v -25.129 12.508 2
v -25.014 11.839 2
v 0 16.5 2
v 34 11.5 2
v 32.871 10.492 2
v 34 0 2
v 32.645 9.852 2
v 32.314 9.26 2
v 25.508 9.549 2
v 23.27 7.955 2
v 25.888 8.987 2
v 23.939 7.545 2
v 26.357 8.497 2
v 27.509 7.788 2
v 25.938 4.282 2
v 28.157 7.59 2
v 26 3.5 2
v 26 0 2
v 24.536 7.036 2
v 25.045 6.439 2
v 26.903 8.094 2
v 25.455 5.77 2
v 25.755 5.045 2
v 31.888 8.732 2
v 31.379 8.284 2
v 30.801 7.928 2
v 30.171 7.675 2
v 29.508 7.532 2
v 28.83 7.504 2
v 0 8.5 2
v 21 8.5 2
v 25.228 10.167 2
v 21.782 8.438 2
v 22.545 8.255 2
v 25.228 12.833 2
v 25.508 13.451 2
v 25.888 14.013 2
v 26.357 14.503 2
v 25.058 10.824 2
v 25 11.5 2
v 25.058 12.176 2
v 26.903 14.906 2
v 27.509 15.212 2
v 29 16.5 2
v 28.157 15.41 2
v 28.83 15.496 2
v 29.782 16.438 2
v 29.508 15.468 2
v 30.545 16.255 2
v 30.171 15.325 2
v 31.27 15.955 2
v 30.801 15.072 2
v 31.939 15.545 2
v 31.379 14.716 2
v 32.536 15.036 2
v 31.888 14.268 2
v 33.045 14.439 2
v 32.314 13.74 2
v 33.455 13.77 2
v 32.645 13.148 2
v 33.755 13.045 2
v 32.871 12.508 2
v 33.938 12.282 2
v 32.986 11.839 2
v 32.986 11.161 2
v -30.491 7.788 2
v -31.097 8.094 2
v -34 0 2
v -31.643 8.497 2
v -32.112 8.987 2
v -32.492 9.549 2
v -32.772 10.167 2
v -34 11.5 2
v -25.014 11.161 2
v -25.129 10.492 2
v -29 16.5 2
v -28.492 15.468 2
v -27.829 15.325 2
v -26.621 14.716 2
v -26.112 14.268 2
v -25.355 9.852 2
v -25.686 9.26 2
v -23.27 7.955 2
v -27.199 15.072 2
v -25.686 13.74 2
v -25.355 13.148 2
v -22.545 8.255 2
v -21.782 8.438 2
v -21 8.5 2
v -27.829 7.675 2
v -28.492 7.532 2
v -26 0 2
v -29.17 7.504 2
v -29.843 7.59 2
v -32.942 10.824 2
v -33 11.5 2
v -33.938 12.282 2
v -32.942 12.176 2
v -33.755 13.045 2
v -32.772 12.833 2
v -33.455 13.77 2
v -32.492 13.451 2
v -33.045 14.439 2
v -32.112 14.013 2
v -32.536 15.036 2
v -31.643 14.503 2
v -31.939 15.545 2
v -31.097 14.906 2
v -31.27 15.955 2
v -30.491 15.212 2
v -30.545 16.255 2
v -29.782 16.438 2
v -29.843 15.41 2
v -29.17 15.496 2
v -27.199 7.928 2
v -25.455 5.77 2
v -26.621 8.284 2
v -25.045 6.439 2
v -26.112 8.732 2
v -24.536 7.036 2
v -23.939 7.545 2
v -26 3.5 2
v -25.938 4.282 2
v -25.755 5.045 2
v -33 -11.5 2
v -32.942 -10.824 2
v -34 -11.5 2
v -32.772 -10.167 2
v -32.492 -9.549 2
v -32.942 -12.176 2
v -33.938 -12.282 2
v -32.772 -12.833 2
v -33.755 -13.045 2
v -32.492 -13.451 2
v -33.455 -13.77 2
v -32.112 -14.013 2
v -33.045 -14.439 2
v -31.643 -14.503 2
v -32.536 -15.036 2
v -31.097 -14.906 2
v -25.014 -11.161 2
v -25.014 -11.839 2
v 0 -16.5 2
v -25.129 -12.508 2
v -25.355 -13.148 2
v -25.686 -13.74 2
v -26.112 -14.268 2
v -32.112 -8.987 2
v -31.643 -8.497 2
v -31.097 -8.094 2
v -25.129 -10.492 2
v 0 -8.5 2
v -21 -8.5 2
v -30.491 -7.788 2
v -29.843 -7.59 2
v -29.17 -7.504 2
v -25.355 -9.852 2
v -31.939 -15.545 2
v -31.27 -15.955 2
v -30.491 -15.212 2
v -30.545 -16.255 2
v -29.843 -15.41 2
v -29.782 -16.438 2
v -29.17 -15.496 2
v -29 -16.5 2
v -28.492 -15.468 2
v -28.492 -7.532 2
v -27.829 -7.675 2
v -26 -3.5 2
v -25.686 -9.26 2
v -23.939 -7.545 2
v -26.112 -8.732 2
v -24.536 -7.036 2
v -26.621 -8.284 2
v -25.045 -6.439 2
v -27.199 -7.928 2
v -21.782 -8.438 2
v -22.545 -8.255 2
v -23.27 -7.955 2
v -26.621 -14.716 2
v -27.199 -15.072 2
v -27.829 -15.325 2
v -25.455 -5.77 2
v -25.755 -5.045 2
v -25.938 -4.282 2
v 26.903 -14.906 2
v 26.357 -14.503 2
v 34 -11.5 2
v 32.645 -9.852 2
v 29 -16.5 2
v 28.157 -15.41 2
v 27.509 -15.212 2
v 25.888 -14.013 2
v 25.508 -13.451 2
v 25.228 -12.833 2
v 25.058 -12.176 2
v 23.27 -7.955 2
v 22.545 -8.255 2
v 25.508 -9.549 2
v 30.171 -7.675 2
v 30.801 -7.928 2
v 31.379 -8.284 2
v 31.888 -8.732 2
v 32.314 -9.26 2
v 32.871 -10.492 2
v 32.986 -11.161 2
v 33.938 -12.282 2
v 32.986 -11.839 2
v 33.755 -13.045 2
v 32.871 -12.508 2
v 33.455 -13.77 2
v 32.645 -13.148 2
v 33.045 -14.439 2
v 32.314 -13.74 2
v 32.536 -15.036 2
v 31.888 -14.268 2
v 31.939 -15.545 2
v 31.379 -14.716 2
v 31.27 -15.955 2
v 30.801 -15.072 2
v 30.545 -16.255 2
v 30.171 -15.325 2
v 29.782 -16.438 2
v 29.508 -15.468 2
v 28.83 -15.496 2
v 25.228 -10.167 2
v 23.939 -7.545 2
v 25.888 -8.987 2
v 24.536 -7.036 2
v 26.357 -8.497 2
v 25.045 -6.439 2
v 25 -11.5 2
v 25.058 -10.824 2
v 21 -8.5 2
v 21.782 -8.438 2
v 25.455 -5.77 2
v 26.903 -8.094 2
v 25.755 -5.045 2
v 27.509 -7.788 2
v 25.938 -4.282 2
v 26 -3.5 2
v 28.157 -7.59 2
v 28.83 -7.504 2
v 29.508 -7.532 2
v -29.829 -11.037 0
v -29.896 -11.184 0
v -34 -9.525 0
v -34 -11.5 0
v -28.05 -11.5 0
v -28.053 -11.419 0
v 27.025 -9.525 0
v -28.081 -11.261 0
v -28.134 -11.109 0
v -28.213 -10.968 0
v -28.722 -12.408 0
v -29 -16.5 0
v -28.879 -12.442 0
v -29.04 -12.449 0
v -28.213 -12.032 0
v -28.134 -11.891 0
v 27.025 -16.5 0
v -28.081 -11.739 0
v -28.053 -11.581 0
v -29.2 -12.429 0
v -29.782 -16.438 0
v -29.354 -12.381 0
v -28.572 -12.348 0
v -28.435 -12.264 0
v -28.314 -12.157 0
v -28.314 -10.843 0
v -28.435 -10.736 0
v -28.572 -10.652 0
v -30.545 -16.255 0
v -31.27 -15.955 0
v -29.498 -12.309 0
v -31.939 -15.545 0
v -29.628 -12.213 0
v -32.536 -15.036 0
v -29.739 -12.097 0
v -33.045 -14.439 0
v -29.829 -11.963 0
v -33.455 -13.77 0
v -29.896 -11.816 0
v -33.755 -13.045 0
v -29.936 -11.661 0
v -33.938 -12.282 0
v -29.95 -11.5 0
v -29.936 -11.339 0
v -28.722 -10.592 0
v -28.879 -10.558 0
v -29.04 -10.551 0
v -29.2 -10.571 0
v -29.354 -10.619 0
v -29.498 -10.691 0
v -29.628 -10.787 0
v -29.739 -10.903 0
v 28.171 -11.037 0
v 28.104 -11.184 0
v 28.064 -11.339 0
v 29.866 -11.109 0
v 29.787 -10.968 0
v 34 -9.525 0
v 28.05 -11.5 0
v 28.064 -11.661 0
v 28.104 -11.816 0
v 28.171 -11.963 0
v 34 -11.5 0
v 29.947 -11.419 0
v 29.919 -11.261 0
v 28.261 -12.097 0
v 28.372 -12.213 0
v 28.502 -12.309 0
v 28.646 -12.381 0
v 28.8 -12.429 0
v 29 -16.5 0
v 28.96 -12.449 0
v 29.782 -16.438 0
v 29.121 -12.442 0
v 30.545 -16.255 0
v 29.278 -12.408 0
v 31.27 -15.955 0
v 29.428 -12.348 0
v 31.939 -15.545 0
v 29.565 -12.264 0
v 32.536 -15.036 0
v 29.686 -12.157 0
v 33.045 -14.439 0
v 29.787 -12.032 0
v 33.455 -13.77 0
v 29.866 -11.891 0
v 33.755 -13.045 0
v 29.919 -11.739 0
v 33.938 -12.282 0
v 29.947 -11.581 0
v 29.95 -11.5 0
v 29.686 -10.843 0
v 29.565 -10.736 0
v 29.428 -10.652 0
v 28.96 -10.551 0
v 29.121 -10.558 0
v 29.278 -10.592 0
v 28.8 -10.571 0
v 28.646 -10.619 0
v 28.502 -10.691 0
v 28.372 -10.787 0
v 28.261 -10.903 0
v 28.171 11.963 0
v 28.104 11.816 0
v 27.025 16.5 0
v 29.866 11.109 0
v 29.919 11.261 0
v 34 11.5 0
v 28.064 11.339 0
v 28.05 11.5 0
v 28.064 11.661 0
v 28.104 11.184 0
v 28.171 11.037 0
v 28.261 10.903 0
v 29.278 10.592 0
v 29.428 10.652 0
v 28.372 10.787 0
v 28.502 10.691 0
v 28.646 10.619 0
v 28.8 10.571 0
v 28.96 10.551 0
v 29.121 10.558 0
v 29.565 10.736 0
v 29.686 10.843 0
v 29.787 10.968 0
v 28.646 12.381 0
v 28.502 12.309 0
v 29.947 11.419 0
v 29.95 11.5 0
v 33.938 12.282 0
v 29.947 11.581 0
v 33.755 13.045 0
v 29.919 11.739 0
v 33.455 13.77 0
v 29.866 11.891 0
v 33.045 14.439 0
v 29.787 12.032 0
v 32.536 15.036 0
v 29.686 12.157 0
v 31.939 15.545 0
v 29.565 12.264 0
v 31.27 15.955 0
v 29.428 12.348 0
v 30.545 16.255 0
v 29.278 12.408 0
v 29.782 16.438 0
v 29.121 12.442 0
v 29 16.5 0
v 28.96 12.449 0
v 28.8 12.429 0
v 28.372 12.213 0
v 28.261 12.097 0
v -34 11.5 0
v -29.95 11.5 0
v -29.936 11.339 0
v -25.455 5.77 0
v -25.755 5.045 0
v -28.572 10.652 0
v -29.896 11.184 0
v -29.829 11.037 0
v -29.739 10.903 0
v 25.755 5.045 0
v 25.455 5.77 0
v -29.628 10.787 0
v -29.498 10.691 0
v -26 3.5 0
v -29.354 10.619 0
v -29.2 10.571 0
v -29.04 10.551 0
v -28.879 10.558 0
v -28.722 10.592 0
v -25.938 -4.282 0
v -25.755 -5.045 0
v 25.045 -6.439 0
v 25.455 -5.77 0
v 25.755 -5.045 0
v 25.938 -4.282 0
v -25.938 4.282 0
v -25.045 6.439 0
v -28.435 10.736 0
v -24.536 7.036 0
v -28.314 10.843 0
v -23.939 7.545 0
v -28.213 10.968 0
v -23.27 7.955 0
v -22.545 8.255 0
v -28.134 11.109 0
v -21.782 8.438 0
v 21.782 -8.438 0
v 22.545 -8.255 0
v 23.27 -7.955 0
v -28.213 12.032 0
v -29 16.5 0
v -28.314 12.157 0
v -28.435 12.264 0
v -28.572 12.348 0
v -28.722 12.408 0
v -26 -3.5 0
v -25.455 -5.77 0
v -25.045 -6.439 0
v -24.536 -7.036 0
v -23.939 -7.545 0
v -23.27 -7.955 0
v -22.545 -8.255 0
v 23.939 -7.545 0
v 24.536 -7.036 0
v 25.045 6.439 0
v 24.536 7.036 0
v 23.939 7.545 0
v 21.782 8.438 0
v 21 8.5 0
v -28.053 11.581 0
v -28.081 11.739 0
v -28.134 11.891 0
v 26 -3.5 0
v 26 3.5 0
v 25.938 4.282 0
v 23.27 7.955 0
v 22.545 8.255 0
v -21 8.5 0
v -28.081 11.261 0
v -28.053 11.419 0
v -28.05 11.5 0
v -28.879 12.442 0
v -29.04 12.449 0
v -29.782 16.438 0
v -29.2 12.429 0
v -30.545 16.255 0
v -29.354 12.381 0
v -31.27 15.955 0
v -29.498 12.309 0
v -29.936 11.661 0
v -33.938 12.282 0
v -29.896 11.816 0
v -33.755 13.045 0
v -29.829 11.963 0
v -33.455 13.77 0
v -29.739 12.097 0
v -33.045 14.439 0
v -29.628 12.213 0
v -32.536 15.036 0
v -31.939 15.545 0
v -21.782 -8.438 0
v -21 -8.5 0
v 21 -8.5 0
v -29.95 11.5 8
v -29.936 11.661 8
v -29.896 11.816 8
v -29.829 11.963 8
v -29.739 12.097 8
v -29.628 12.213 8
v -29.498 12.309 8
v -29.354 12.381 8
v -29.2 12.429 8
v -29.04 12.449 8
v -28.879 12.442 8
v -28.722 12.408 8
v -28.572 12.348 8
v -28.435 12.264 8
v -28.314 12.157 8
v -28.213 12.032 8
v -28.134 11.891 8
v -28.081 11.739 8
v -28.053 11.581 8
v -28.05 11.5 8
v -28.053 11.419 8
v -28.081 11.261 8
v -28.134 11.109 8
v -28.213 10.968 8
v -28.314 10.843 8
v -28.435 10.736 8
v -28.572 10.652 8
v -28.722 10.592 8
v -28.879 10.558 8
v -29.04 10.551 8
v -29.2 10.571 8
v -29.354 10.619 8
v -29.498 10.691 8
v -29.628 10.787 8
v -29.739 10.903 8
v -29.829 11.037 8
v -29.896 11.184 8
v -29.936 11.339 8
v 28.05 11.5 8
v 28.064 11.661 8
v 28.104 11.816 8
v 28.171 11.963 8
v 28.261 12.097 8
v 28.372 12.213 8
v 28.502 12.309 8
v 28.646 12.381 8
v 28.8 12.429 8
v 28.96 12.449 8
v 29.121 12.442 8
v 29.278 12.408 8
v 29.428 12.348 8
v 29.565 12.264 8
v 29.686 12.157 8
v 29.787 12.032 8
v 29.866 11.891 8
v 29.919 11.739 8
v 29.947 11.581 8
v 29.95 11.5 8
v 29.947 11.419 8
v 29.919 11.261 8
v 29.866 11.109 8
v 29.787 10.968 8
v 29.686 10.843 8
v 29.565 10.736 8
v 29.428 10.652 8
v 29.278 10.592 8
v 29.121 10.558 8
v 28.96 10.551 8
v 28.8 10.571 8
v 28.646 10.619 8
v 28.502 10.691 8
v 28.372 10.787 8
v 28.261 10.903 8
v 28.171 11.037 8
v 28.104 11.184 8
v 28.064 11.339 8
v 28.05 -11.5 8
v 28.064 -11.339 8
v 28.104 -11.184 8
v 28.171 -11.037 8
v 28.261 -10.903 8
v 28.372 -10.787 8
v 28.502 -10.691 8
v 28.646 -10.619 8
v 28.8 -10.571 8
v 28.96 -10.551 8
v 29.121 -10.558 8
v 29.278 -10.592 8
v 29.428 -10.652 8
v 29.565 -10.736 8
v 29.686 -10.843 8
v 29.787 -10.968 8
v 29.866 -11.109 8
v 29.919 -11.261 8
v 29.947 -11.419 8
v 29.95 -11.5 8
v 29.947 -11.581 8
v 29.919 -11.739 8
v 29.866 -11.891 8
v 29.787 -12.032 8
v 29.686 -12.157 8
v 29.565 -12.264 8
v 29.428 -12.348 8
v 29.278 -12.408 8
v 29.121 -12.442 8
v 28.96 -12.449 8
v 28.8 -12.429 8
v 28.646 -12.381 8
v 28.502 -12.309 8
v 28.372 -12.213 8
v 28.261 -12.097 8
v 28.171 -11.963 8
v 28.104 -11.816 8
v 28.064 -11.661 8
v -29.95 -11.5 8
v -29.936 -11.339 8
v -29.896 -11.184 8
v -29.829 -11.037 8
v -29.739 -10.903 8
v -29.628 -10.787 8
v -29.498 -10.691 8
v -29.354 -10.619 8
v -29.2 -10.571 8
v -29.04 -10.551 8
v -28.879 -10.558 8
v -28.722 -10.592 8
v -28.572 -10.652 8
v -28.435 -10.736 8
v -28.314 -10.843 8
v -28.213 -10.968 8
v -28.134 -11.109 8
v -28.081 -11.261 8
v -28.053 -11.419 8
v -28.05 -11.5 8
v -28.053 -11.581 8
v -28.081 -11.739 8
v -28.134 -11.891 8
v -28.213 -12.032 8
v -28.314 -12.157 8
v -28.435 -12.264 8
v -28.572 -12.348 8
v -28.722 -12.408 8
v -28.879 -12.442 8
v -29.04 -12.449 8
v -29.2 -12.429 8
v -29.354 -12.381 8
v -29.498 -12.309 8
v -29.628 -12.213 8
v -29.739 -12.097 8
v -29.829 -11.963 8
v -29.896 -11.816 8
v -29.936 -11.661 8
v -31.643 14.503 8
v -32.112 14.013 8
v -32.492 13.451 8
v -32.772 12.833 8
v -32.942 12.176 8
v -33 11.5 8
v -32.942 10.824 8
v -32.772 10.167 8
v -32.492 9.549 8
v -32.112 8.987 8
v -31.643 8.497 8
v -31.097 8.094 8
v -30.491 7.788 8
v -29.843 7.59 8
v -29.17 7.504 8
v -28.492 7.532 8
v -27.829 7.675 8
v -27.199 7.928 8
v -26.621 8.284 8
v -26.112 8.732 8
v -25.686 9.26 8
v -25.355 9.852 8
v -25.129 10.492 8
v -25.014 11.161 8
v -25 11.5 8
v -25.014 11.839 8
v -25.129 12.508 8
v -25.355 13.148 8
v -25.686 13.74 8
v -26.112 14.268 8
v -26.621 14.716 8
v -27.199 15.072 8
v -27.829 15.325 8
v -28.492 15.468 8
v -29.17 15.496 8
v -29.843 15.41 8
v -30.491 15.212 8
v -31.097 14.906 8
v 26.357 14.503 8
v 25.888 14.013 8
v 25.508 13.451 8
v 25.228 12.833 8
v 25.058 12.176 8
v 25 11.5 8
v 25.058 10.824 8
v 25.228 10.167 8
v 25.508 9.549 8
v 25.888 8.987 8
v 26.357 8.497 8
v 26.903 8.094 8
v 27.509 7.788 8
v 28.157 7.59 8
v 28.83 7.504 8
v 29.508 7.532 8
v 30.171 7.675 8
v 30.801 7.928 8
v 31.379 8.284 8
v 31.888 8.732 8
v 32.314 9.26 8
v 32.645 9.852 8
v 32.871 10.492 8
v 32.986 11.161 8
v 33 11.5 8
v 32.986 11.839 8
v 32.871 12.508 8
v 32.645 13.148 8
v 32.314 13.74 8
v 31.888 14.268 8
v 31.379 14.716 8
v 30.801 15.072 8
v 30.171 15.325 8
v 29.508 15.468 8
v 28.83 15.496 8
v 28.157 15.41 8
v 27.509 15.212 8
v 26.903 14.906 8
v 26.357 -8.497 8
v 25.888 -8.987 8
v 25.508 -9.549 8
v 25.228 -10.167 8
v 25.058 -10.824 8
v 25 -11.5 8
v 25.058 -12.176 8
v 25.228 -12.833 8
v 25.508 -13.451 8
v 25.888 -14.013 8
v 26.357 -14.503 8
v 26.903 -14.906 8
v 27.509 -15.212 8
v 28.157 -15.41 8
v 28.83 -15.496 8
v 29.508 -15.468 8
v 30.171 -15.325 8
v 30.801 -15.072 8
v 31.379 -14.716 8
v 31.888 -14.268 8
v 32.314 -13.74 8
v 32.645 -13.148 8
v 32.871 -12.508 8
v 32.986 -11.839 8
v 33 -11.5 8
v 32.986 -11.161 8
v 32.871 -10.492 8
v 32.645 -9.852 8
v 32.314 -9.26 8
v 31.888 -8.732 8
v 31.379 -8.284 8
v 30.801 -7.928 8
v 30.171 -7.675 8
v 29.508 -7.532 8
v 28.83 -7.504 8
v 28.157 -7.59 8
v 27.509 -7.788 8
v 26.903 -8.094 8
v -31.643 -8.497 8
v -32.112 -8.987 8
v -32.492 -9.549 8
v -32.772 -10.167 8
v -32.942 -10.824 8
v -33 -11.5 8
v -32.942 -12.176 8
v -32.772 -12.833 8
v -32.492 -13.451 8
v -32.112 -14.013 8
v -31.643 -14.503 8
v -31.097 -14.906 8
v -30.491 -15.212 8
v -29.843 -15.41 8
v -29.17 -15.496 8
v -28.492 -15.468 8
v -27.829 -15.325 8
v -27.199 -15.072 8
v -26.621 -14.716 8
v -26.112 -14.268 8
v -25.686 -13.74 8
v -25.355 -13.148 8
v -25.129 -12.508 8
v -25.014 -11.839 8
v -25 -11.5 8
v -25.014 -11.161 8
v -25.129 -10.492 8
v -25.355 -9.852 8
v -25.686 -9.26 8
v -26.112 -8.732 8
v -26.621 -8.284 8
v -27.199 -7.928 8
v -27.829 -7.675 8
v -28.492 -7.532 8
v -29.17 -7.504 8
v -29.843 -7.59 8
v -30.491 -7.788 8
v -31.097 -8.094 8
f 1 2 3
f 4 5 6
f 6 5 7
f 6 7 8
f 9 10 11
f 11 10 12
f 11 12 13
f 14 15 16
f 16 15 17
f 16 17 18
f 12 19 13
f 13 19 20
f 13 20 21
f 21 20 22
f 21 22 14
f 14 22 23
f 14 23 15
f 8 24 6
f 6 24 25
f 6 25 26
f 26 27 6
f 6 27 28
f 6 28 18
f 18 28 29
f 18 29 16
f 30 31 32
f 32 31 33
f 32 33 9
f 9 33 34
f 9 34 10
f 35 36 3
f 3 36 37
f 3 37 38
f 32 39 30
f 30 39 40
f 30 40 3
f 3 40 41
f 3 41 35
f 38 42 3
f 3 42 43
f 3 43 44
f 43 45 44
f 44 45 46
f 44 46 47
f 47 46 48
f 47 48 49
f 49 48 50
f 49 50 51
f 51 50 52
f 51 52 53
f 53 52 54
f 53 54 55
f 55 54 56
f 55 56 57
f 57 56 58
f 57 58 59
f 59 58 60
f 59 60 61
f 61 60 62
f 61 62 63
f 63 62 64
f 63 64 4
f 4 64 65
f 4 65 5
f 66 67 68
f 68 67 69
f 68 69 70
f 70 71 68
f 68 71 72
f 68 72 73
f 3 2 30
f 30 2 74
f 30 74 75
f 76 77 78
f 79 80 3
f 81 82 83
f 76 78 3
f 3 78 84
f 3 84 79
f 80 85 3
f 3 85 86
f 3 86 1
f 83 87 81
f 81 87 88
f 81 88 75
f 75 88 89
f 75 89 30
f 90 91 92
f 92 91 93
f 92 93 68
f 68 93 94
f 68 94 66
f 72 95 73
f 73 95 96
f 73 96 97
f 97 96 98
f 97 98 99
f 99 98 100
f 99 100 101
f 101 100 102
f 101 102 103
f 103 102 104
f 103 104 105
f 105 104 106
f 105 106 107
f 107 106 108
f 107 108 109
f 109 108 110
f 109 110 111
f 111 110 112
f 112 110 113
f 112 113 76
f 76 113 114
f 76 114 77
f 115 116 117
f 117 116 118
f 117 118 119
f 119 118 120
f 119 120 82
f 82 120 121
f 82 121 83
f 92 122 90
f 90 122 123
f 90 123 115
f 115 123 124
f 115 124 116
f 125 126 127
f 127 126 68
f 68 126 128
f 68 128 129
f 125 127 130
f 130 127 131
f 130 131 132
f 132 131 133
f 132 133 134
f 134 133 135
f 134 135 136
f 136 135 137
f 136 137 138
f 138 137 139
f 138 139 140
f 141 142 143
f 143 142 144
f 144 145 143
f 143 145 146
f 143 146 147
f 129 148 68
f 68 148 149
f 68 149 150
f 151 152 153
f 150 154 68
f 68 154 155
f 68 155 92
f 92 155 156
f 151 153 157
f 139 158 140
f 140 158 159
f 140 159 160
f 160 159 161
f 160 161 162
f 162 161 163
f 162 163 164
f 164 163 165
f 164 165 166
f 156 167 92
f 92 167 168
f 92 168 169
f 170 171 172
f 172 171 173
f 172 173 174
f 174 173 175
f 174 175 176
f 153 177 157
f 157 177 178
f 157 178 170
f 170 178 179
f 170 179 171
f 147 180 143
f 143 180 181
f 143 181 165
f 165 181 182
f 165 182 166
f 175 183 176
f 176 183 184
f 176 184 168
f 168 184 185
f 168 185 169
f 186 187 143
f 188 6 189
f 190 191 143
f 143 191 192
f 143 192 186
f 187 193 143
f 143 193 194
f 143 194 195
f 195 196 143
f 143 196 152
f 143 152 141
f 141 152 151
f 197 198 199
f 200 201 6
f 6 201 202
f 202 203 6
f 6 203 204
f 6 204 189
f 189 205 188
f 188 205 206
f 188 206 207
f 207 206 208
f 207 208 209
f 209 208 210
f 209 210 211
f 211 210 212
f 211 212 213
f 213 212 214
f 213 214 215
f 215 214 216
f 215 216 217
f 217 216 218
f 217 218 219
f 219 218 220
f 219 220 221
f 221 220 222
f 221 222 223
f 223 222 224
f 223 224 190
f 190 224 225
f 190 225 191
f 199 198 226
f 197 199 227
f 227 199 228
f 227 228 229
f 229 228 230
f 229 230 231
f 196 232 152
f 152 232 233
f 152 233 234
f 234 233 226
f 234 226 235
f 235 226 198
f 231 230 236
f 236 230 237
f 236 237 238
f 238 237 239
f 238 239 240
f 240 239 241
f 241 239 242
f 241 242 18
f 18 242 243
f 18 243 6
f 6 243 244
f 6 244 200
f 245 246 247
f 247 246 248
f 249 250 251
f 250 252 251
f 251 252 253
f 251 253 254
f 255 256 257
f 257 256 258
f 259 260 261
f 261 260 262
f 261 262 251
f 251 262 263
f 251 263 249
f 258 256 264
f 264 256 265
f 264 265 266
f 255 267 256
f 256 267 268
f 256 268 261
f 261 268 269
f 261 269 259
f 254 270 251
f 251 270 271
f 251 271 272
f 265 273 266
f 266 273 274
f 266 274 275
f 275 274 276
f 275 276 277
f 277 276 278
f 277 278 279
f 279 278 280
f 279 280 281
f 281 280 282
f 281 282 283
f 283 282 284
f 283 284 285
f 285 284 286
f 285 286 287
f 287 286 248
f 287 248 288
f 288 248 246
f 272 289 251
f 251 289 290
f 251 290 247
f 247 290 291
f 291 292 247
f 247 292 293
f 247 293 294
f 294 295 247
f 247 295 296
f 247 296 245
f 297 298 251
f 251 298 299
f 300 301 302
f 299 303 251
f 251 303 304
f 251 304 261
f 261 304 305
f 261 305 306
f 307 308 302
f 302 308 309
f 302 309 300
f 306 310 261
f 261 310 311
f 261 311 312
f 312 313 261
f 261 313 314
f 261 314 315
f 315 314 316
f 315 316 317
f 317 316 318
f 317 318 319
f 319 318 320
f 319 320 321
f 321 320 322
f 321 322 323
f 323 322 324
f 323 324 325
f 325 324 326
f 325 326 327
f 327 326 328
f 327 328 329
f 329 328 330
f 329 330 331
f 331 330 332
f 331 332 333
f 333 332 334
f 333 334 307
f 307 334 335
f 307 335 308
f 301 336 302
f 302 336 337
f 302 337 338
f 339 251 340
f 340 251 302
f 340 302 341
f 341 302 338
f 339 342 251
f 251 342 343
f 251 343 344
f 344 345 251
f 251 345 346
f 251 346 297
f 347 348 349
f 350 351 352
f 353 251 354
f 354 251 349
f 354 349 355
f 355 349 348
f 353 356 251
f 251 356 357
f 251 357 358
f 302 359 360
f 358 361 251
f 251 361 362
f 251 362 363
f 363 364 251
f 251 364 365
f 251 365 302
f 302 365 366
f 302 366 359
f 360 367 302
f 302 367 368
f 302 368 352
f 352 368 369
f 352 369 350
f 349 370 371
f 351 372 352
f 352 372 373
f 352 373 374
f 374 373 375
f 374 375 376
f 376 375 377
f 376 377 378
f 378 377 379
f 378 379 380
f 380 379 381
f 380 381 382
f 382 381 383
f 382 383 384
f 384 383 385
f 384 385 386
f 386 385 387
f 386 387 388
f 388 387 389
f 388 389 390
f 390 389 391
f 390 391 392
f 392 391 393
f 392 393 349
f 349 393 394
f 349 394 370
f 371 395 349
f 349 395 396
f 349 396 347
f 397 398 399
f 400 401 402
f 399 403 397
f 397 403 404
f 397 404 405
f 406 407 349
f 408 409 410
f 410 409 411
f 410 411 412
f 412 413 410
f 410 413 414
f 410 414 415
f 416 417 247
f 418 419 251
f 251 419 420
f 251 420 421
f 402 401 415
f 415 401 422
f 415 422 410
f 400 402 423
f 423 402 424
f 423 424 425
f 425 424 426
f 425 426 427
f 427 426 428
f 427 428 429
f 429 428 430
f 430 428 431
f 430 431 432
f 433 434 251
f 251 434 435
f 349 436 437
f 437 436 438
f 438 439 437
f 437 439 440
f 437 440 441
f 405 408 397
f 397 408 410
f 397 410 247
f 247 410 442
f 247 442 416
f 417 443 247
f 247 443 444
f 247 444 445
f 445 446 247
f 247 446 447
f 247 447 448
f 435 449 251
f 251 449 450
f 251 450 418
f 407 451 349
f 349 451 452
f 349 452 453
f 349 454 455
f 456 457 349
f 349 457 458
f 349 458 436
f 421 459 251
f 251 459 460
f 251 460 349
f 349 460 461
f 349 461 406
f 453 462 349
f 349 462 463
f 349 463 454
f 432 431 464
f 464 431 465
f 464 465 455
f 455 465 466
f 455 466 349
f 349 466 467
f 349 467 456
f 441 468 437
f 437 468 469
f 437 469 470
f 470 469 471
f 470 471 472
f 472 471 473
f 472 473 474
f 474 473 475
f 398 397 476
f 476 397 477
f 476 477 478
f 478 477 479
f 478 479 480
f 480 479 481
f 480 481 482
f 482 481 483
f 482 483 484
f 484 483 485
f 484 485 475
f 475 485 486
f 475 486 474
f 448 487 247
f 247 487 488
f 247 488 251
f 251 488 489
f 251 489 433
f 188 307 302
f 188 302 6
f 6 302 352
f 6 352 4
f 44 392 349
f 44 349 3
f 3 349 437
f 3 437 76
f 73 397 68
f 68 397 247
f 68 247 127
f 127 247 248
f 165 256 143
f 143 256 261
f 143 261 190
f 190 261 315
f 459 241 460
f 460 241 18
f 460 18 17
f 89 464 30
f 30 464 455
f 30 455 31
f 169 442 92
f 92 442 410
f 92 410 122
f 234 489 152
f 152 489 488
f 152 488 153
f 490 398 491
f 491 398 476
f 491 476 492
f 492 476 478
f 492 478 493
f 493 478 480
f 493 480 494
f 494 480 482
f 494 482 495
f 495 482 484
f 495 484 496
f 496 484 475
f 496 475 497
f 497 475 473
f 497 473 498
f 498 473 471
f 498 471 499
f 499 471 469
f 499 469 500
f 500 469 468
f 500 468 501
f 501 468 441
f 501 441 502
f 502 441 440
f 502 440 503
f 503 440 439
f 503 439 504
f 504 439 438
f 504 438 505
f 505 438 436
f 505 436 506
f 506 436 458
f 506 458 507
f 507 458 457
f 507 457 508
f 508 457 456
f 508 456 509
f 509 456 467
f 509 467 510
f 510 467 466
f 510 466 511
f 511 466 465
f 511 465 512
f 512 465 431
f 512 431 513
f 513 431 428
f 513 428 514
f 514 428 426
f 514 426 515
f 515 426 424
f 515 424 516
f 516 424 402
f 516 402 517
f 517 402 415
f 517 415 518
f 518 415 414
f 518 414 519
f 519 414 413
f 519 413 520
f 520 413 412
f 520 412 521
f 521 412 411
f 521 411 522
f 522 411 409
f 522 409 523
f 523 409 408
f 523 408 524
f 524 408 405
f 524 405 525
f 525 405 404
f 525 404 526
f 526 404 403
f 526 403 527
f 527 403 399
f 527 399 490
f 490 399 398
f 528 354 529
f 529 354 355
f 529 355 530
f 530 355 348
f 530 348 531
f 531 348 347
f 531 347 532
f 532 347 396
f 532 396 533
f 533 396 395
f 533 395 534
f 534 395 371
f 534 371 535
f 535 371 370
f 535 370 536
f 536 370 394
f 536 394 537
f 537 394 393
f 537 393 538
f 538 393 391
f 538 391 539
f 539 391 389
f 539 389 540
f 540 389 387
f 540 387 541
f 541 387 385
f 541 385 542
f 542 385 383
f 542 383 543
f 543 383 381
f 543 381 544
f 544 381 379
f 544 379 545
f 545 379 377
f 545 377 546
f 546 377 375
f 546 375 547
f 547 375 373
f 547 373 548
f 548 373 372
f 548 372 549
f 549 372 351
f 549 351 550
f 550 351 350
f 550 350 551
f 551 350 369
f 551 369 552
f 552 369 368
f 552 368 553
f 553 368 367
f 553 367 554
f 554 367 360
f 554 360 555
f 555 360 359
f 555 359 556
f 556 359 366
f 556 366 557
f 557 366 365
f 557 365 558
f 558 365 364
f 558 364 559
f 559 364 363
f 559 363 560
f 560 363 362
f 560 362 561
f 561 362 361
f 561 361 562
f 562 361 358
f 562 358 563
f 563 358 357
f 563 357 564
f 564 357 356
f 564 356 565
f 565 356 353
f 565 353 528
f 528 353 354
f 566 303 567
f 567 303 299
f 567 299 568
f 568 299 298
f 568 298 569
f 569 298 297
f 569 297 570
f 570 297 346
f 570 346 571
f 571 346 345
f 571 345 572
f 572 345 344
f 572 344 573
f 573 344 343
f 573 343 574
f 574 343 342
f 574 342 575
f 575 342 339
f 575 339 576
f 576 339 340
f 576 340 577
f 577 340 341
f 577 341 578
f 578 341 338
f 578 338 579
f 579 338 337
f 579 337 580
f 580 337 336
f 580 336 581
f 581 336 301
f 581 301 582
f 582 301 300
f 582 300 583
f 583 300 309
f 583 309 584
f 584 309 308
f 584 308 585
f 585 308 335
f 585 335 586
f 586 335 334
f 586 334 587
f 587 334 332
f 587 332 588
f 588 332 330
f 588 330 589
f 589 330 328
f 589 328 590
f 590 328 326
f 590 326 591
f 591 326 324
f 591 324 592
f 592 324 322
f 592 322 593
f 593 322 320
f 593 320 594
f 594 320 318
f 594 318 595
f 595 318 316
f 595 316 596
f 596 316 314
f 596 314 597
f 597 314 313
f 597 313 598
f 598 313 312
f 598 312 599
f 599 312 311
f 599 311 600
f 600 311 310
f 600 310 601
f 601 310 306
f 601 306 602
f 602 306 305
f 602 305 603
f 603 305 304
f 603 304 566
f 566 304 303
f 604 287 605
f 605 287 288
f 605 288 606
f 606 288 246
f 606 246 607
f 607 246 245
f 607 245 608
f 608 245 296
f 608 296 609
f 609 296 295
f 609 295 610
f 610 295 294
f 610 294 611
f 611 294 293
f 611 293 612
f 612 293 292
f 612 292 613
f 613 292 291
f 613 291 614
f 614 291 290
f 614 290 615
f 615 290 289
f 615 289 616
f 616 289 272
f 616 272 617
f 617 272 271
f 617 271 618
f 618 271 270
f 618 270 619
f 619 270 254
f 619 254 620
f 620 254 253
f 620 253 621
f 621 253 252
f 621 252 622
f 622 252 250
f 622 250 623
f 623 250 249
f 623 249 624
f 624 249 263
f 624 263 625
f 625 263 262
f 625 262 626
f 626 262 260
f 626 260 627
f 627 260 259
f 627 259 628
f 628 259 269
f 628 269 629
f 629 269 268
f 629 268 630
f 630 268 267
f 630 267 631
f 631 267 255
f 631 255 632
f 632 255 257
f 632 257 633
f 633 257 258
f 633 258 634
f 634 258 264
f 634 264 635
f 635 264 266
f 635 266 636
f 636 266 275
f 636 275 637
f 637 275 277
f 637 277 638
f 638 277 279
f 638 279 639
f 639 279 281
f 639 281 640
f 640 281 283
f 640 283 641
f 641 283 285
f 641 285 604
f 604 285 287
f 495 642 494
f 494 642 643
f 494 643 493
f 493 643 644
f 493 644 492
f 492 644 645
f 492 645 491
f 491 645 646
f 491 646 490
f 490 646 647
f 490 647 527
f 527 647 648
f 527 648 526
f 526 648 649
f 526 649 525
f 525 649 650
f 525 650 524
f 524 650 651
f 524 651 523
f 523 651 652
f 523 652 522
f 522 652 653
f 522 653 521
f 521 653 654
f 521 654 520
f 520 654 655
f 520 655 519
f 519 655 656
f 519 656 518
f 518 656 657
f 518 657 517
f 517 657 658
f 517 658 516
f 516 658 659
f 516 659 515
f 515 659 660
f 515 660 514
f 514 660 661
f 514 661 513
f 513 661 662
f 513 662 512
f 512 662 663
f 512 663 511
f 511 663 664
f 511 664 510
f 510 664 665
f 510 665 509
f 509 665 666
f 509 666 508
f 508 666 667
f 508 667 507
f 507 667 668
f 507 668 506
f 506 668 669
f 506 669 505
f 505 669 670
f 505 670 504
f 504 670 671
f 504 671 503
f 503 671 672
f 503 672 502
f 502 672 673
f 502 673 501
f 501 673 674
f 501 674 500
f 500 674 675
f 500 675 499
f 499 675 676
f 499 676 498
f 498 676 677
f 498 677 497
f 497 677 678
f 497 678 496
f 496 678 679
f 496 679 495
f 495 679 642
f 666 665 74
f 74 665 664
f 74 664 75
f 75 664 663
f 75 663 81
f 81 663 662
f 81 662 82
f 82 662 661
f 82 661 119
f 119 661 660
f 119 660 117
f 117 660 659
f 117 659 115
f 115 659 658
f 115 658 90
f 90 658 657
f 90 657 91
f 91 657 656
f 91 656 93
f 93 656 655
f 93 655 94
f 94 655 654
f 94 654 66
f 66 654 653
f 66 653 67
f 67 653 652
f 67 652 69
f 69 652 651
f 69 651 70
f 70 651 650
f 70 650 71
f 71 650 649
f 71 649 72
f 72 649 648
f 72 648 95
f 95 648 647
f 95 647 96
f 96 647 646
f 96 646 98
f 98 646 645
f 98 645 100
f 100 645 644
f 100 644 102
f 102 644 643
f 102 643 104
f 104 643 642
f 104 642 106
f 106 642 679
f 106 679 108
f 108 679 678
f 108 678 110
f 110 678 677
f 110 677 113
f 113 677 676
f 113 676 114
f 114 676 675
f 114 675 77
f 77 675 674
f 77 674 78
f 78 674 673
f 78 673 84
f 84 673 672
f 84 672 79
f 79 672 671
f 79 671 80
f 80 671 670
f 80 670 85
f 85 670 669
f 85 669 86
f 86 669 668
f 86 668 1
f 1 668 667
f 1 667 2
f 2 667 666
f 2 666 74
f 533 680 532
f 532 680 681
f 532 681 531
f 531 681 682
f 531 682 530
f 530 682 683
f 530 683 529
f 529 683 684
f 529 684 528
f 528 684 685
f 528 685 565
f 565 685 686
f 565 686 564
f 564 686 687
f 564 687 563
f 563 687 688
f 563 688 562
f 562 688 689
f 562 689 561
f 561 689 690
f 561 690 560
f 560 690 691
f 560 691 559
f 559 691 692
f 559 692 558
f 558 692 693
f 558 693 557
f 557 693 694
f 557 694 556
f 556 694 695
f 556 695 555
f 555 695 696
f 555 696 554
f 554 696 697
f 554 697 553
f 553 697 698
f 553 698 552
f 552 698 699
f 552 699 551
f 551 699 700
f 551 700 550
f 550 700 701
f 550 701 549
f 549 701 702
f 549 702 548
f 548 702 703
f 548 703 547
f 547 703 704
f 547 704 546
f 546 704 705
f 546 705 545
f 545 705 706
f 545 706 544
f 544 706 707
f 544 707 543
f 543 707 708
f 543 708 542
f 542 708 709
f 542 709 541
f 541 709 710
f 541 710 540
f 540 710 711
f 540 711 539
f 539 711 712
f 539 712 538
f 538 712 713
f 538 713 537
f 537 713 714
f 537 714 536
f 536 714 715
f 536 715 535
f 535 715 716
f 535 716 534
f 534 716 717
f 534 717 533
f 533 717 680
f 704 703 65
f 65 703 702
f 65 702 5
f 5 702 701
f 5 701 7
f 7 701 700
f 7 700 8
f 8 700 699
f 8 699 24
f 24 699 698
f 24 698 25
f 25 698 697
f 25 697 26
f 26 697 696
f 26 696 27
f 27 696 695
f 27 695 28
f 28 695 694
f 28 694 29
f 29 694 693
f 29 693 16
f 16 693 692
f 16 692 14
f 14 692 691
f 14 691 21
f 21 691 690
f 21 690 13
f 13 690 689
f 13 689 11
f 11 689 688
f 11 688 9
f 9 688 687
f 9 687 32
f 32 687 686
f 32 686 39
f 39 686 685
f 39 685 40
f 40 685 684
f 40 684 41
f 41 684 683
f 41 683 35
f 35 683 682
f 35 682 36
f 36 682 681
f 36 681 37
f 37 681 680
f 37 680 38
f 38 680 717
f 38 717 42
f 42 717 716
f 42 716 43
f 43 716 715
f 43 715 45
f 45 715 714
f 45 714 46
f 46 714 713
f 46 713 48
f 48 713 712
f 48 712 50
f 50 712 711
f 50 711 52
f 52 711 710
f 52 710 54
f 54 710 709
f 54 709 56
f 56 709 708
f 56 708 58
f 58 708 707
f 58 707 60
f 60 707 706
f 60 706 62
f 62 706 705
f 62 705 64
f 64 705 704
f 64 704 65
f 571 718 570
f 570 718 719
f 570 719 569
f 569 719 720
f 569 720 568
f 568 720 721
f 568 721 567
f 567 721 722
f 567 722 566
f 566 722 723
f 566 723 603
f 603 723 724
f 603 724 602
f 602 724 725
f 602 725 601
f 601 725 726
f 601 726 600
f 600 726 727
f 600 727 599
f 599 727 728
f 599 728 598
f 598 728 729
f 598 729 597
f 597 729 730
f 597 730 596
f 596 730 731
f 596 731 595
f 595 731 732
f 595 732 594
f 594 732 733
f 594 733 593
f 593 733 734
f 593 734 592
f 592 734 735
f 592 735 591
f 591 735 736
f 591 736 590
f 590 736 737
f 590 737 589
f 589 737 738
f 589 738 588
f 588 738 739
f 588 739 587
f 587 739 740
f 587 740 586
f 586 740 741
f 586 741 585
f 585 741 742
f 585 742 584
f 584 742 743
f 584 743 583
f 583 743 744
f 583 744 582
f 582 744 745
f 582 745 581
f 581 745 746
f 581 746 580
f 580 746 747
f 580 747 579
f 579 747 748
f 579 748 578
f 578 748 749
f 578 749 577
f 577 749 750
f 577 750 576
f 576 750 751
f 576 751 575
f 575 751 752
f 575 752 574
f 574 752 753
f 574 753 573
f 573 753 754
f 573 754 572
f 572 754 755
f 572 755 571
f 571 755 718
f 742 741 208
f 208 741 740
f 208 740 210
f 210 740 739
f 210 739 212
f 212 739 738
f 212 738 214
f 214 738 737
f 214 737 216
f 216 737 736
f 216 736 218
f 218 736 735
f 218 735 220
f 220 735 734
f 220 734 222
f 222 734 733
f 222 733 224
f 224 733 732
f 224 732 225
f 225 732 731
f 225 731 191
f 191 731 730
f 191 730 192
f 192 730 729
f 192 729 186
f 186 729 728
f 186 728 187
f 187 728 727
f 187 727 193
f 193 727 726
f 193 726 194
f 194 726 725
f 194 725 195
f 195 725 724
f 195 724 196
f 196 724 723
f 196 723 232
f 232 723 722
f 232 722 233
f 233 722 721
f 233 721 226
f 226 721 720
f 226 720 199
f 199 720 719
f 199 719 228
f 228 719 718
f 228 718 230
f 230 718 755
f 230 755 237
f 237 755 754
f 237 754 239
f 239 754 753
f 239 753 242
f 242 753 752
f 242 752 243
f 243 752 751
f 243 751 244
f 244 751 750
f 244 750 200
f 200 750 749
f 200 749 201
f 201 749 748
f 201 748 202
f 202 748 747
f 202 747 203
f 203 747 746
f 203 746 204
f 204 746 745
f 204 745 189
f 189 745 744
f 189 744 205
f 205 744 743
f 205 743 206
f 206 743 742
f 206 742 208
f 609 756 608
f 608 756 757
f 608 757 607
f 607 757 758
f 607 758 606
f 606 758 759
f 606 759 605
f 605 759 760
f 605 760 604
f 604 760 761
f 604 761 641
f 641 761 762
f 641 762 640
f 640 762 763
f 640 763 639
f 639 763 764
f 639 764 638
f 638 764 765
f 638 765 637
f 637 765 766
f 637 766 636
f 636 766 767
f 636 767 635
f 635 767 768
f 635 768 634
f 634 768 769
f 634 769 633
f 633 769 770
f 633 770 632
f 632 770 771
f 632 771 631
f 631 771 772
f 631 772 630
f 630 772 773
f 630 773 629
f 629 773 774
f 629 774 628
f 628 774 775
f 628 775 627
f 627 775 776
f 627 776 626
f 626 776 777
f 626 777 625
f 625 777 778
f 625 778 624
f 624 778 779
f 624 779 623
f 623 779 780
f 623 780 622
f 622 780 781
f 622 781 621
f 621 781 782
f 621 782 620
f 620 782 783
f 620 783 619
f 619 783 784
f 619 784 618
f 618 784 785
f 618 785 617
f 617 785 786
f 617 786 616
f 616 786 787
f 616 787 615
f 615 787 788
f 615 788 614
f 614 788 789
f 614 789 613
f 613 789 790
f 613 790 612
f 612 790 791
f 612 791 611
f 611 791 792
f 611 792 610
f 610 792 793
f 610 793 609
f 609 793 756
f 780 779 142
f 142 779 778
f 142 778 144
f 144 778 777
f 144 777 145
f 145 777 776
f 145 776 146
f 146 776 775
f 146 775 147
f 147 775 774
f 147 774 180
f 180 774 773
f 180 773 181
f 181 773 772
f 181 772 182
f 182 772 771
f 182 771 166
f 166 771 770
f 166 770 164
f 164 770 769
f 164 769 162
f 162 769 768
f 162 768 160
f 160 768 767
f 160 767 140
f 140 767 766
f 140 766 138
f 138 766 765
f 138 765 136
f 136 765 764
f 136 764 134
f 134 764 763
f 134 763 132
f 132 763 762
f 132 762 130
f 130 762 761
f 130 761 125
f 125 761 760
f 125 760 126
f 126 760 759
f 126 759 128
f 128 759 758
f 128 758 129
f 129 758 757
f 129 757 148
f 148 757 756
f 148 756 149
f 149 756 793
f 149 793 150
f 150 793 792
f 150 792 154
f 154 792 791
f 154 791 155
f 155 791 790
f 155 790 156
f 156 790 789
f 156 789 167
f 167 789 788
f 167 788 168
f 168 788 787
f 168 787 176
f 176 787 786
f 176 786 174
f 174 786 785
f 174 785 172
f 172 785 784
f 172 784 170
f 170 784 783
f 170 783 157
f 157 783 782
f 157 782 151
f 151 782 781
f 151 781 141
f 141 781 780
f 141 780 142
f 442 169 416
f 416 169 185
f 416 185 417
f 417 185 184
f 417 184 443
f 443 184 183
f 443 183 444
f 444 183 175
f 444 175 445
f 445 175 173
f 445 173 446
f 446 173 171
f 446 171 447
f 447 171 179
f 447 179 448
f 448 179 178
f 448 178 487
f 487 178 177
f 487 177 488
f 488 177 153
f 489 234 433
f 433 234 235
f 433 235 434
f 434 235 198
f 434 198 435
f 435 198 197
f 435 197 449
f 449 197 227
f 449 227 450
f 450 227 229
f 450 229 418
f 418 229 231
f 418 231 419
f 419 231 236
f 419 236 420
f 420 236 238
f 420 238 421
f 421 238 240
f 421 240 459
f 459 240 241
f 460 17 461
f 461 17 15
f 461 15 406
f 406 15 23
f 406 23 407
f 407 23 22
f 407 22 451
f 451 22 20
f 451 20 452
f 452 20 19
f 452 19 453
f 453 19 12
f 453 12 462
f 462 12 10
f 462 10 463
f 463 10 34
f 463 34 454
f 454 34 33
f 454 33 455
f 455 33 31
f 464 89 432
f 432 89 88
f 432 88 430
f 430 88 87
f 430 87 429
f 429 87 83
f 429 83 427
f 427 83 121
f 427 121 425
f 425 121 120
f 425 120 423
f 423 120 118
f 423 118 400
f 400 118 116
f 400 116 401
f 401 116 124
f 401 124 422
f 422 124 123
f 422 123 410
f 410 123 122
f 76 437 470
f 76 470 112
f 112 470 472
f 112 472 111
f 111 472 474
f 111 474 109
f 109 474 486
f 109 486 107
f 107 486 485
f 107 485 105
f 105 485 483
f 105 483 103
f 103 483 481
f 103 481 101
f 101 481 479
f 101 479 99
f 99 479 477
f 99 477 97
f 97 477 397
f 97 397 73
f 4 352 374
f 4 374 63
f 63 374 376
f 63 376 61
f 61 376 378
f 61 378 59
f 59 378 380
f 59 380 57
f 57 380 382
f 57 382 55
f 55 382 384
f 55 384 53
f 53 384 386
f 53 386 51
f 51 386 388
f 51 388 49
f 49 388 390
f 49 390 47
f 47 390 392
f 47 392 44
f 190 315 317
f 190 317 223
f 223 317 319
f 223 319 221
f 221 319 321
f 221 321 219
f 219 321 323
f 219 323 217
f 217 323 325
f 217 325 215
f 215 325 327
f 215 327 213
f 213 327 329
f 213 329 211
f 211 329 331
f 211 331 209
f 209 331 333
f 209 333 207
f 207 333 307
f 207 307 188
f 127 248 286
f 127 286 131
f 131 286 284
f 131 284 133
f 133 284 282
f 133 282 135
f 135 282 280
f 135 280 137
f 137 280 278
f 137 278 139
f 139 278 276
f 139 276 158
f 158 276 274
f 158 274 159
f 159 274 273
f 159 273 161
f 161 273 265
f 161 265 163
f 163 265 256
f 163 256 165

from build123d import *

# Parameters (mm, degrees)
SKETCH1_W           = 68
SKETCH1_H           = 33
SKETCH1_R           = 0.95
SKETCH1_W_2         = 52
SKETCH1_H_2         = 17
BOSS_EXTRUDE1_DEPTH = 2
SKETCH2_R           = 4
SKETCH2_R_2         = 0.95
BOSS_EXTRUDE2_DEPTH = 6
FILLET1_R           = 5


with BuildPart() as part:
    # Sketch1 → Boss-Extrude1 (new body)
    with BuildSketch(Plane.XY):
        Rectangle(SKETCH1_W, SKETCH1_H)
        with Locations((-29, 11.5)):
            Circle(SKETCH1_R, mode=Mode.SUBTRACT)
        with Locations((29, 11.5)):
            Circle(SKETCH1_R, mode=Mode.SUBTRACT)
        with Locations((29, -11.5)):
            Circle(SKETCH1_R, mode=Mode.SUBTRACT)
        with Locations((-29, -11.5)):
            Circle(SKETCH1_R, mode=Mode.SUBTRACT)
        Rectangle(SKETCH1_W_2, SKETCH1_H_2, mode=Mode.SUBTRACT)
    extrude(amount=BOSS_EXTRUDE1_DEPTH)

    # Sketch2 → Boss-Extrude2 (add)
    # profile 1 of 4: a face of its own
    with BuildSketch(Plane.XY.offset(2)):
        with Locations(Location((-29, 11.5, 0), (0, 0, 180))):
            Circle(SKETCH2_R)
        with Locations((-29, 11.5)):
            Circle(SKETCH2_R_2, mode=Mode.SUBTRACT)
    # profile 2 of 4: a face of its own
    with BuildSketch(Plane.XY.offset(2)):
        with Locations(Location((29, 11.5, 0), (0, 0, 180))):
            Circle(SKETCH2_R)
        with Locations((29, 11.5)):
            Circle(SKETCH2_R_2, mode=Mode.SUBTRACT)
    # profile 3 of 4: a face of its own
    with BuildSketch(Plane.XY.offset(2)):
        with Locations(Location((29, -11.5, 0), (0, 0, 180))):
            Circle(SKETCH2_R)
        with Locations((29, -11.5)):
            Circle(SKETCH2_R_2, mode=Mode.SUBTRACT)
    # profile 4 of 4: a face of its own
    with BuildSketch(Plane.XY.offset(2)):
        with Locations(Location((-29, -11.5, 0), (0, 0, 180))):
            Circle(SKETCH2_R)
        with Locations((-29, -11.5)):
            Circle(SKETCH2_R_2, mode=Mode.SUBTRACT)
    extrude(amount=BOSS_EXTRUDE2_DEPTH)

    # Fillet1
    fillet1_edges = [part.edges().sort_by_distance(p)[0] for p in [
        (26, -8.5, 1),
        (26, 8.5, 1),
        (-26, 8.5, 1),
        (-26, -8.5, 1),
        (34, -16.5, 1),
        (-34, -16.5, 1),
        (-34, 16.5, 1),
        (34, 16.5, 1),
    ]]
    fillet(fillet1_edges, radius=FILLET1_R)


solid = part.part
